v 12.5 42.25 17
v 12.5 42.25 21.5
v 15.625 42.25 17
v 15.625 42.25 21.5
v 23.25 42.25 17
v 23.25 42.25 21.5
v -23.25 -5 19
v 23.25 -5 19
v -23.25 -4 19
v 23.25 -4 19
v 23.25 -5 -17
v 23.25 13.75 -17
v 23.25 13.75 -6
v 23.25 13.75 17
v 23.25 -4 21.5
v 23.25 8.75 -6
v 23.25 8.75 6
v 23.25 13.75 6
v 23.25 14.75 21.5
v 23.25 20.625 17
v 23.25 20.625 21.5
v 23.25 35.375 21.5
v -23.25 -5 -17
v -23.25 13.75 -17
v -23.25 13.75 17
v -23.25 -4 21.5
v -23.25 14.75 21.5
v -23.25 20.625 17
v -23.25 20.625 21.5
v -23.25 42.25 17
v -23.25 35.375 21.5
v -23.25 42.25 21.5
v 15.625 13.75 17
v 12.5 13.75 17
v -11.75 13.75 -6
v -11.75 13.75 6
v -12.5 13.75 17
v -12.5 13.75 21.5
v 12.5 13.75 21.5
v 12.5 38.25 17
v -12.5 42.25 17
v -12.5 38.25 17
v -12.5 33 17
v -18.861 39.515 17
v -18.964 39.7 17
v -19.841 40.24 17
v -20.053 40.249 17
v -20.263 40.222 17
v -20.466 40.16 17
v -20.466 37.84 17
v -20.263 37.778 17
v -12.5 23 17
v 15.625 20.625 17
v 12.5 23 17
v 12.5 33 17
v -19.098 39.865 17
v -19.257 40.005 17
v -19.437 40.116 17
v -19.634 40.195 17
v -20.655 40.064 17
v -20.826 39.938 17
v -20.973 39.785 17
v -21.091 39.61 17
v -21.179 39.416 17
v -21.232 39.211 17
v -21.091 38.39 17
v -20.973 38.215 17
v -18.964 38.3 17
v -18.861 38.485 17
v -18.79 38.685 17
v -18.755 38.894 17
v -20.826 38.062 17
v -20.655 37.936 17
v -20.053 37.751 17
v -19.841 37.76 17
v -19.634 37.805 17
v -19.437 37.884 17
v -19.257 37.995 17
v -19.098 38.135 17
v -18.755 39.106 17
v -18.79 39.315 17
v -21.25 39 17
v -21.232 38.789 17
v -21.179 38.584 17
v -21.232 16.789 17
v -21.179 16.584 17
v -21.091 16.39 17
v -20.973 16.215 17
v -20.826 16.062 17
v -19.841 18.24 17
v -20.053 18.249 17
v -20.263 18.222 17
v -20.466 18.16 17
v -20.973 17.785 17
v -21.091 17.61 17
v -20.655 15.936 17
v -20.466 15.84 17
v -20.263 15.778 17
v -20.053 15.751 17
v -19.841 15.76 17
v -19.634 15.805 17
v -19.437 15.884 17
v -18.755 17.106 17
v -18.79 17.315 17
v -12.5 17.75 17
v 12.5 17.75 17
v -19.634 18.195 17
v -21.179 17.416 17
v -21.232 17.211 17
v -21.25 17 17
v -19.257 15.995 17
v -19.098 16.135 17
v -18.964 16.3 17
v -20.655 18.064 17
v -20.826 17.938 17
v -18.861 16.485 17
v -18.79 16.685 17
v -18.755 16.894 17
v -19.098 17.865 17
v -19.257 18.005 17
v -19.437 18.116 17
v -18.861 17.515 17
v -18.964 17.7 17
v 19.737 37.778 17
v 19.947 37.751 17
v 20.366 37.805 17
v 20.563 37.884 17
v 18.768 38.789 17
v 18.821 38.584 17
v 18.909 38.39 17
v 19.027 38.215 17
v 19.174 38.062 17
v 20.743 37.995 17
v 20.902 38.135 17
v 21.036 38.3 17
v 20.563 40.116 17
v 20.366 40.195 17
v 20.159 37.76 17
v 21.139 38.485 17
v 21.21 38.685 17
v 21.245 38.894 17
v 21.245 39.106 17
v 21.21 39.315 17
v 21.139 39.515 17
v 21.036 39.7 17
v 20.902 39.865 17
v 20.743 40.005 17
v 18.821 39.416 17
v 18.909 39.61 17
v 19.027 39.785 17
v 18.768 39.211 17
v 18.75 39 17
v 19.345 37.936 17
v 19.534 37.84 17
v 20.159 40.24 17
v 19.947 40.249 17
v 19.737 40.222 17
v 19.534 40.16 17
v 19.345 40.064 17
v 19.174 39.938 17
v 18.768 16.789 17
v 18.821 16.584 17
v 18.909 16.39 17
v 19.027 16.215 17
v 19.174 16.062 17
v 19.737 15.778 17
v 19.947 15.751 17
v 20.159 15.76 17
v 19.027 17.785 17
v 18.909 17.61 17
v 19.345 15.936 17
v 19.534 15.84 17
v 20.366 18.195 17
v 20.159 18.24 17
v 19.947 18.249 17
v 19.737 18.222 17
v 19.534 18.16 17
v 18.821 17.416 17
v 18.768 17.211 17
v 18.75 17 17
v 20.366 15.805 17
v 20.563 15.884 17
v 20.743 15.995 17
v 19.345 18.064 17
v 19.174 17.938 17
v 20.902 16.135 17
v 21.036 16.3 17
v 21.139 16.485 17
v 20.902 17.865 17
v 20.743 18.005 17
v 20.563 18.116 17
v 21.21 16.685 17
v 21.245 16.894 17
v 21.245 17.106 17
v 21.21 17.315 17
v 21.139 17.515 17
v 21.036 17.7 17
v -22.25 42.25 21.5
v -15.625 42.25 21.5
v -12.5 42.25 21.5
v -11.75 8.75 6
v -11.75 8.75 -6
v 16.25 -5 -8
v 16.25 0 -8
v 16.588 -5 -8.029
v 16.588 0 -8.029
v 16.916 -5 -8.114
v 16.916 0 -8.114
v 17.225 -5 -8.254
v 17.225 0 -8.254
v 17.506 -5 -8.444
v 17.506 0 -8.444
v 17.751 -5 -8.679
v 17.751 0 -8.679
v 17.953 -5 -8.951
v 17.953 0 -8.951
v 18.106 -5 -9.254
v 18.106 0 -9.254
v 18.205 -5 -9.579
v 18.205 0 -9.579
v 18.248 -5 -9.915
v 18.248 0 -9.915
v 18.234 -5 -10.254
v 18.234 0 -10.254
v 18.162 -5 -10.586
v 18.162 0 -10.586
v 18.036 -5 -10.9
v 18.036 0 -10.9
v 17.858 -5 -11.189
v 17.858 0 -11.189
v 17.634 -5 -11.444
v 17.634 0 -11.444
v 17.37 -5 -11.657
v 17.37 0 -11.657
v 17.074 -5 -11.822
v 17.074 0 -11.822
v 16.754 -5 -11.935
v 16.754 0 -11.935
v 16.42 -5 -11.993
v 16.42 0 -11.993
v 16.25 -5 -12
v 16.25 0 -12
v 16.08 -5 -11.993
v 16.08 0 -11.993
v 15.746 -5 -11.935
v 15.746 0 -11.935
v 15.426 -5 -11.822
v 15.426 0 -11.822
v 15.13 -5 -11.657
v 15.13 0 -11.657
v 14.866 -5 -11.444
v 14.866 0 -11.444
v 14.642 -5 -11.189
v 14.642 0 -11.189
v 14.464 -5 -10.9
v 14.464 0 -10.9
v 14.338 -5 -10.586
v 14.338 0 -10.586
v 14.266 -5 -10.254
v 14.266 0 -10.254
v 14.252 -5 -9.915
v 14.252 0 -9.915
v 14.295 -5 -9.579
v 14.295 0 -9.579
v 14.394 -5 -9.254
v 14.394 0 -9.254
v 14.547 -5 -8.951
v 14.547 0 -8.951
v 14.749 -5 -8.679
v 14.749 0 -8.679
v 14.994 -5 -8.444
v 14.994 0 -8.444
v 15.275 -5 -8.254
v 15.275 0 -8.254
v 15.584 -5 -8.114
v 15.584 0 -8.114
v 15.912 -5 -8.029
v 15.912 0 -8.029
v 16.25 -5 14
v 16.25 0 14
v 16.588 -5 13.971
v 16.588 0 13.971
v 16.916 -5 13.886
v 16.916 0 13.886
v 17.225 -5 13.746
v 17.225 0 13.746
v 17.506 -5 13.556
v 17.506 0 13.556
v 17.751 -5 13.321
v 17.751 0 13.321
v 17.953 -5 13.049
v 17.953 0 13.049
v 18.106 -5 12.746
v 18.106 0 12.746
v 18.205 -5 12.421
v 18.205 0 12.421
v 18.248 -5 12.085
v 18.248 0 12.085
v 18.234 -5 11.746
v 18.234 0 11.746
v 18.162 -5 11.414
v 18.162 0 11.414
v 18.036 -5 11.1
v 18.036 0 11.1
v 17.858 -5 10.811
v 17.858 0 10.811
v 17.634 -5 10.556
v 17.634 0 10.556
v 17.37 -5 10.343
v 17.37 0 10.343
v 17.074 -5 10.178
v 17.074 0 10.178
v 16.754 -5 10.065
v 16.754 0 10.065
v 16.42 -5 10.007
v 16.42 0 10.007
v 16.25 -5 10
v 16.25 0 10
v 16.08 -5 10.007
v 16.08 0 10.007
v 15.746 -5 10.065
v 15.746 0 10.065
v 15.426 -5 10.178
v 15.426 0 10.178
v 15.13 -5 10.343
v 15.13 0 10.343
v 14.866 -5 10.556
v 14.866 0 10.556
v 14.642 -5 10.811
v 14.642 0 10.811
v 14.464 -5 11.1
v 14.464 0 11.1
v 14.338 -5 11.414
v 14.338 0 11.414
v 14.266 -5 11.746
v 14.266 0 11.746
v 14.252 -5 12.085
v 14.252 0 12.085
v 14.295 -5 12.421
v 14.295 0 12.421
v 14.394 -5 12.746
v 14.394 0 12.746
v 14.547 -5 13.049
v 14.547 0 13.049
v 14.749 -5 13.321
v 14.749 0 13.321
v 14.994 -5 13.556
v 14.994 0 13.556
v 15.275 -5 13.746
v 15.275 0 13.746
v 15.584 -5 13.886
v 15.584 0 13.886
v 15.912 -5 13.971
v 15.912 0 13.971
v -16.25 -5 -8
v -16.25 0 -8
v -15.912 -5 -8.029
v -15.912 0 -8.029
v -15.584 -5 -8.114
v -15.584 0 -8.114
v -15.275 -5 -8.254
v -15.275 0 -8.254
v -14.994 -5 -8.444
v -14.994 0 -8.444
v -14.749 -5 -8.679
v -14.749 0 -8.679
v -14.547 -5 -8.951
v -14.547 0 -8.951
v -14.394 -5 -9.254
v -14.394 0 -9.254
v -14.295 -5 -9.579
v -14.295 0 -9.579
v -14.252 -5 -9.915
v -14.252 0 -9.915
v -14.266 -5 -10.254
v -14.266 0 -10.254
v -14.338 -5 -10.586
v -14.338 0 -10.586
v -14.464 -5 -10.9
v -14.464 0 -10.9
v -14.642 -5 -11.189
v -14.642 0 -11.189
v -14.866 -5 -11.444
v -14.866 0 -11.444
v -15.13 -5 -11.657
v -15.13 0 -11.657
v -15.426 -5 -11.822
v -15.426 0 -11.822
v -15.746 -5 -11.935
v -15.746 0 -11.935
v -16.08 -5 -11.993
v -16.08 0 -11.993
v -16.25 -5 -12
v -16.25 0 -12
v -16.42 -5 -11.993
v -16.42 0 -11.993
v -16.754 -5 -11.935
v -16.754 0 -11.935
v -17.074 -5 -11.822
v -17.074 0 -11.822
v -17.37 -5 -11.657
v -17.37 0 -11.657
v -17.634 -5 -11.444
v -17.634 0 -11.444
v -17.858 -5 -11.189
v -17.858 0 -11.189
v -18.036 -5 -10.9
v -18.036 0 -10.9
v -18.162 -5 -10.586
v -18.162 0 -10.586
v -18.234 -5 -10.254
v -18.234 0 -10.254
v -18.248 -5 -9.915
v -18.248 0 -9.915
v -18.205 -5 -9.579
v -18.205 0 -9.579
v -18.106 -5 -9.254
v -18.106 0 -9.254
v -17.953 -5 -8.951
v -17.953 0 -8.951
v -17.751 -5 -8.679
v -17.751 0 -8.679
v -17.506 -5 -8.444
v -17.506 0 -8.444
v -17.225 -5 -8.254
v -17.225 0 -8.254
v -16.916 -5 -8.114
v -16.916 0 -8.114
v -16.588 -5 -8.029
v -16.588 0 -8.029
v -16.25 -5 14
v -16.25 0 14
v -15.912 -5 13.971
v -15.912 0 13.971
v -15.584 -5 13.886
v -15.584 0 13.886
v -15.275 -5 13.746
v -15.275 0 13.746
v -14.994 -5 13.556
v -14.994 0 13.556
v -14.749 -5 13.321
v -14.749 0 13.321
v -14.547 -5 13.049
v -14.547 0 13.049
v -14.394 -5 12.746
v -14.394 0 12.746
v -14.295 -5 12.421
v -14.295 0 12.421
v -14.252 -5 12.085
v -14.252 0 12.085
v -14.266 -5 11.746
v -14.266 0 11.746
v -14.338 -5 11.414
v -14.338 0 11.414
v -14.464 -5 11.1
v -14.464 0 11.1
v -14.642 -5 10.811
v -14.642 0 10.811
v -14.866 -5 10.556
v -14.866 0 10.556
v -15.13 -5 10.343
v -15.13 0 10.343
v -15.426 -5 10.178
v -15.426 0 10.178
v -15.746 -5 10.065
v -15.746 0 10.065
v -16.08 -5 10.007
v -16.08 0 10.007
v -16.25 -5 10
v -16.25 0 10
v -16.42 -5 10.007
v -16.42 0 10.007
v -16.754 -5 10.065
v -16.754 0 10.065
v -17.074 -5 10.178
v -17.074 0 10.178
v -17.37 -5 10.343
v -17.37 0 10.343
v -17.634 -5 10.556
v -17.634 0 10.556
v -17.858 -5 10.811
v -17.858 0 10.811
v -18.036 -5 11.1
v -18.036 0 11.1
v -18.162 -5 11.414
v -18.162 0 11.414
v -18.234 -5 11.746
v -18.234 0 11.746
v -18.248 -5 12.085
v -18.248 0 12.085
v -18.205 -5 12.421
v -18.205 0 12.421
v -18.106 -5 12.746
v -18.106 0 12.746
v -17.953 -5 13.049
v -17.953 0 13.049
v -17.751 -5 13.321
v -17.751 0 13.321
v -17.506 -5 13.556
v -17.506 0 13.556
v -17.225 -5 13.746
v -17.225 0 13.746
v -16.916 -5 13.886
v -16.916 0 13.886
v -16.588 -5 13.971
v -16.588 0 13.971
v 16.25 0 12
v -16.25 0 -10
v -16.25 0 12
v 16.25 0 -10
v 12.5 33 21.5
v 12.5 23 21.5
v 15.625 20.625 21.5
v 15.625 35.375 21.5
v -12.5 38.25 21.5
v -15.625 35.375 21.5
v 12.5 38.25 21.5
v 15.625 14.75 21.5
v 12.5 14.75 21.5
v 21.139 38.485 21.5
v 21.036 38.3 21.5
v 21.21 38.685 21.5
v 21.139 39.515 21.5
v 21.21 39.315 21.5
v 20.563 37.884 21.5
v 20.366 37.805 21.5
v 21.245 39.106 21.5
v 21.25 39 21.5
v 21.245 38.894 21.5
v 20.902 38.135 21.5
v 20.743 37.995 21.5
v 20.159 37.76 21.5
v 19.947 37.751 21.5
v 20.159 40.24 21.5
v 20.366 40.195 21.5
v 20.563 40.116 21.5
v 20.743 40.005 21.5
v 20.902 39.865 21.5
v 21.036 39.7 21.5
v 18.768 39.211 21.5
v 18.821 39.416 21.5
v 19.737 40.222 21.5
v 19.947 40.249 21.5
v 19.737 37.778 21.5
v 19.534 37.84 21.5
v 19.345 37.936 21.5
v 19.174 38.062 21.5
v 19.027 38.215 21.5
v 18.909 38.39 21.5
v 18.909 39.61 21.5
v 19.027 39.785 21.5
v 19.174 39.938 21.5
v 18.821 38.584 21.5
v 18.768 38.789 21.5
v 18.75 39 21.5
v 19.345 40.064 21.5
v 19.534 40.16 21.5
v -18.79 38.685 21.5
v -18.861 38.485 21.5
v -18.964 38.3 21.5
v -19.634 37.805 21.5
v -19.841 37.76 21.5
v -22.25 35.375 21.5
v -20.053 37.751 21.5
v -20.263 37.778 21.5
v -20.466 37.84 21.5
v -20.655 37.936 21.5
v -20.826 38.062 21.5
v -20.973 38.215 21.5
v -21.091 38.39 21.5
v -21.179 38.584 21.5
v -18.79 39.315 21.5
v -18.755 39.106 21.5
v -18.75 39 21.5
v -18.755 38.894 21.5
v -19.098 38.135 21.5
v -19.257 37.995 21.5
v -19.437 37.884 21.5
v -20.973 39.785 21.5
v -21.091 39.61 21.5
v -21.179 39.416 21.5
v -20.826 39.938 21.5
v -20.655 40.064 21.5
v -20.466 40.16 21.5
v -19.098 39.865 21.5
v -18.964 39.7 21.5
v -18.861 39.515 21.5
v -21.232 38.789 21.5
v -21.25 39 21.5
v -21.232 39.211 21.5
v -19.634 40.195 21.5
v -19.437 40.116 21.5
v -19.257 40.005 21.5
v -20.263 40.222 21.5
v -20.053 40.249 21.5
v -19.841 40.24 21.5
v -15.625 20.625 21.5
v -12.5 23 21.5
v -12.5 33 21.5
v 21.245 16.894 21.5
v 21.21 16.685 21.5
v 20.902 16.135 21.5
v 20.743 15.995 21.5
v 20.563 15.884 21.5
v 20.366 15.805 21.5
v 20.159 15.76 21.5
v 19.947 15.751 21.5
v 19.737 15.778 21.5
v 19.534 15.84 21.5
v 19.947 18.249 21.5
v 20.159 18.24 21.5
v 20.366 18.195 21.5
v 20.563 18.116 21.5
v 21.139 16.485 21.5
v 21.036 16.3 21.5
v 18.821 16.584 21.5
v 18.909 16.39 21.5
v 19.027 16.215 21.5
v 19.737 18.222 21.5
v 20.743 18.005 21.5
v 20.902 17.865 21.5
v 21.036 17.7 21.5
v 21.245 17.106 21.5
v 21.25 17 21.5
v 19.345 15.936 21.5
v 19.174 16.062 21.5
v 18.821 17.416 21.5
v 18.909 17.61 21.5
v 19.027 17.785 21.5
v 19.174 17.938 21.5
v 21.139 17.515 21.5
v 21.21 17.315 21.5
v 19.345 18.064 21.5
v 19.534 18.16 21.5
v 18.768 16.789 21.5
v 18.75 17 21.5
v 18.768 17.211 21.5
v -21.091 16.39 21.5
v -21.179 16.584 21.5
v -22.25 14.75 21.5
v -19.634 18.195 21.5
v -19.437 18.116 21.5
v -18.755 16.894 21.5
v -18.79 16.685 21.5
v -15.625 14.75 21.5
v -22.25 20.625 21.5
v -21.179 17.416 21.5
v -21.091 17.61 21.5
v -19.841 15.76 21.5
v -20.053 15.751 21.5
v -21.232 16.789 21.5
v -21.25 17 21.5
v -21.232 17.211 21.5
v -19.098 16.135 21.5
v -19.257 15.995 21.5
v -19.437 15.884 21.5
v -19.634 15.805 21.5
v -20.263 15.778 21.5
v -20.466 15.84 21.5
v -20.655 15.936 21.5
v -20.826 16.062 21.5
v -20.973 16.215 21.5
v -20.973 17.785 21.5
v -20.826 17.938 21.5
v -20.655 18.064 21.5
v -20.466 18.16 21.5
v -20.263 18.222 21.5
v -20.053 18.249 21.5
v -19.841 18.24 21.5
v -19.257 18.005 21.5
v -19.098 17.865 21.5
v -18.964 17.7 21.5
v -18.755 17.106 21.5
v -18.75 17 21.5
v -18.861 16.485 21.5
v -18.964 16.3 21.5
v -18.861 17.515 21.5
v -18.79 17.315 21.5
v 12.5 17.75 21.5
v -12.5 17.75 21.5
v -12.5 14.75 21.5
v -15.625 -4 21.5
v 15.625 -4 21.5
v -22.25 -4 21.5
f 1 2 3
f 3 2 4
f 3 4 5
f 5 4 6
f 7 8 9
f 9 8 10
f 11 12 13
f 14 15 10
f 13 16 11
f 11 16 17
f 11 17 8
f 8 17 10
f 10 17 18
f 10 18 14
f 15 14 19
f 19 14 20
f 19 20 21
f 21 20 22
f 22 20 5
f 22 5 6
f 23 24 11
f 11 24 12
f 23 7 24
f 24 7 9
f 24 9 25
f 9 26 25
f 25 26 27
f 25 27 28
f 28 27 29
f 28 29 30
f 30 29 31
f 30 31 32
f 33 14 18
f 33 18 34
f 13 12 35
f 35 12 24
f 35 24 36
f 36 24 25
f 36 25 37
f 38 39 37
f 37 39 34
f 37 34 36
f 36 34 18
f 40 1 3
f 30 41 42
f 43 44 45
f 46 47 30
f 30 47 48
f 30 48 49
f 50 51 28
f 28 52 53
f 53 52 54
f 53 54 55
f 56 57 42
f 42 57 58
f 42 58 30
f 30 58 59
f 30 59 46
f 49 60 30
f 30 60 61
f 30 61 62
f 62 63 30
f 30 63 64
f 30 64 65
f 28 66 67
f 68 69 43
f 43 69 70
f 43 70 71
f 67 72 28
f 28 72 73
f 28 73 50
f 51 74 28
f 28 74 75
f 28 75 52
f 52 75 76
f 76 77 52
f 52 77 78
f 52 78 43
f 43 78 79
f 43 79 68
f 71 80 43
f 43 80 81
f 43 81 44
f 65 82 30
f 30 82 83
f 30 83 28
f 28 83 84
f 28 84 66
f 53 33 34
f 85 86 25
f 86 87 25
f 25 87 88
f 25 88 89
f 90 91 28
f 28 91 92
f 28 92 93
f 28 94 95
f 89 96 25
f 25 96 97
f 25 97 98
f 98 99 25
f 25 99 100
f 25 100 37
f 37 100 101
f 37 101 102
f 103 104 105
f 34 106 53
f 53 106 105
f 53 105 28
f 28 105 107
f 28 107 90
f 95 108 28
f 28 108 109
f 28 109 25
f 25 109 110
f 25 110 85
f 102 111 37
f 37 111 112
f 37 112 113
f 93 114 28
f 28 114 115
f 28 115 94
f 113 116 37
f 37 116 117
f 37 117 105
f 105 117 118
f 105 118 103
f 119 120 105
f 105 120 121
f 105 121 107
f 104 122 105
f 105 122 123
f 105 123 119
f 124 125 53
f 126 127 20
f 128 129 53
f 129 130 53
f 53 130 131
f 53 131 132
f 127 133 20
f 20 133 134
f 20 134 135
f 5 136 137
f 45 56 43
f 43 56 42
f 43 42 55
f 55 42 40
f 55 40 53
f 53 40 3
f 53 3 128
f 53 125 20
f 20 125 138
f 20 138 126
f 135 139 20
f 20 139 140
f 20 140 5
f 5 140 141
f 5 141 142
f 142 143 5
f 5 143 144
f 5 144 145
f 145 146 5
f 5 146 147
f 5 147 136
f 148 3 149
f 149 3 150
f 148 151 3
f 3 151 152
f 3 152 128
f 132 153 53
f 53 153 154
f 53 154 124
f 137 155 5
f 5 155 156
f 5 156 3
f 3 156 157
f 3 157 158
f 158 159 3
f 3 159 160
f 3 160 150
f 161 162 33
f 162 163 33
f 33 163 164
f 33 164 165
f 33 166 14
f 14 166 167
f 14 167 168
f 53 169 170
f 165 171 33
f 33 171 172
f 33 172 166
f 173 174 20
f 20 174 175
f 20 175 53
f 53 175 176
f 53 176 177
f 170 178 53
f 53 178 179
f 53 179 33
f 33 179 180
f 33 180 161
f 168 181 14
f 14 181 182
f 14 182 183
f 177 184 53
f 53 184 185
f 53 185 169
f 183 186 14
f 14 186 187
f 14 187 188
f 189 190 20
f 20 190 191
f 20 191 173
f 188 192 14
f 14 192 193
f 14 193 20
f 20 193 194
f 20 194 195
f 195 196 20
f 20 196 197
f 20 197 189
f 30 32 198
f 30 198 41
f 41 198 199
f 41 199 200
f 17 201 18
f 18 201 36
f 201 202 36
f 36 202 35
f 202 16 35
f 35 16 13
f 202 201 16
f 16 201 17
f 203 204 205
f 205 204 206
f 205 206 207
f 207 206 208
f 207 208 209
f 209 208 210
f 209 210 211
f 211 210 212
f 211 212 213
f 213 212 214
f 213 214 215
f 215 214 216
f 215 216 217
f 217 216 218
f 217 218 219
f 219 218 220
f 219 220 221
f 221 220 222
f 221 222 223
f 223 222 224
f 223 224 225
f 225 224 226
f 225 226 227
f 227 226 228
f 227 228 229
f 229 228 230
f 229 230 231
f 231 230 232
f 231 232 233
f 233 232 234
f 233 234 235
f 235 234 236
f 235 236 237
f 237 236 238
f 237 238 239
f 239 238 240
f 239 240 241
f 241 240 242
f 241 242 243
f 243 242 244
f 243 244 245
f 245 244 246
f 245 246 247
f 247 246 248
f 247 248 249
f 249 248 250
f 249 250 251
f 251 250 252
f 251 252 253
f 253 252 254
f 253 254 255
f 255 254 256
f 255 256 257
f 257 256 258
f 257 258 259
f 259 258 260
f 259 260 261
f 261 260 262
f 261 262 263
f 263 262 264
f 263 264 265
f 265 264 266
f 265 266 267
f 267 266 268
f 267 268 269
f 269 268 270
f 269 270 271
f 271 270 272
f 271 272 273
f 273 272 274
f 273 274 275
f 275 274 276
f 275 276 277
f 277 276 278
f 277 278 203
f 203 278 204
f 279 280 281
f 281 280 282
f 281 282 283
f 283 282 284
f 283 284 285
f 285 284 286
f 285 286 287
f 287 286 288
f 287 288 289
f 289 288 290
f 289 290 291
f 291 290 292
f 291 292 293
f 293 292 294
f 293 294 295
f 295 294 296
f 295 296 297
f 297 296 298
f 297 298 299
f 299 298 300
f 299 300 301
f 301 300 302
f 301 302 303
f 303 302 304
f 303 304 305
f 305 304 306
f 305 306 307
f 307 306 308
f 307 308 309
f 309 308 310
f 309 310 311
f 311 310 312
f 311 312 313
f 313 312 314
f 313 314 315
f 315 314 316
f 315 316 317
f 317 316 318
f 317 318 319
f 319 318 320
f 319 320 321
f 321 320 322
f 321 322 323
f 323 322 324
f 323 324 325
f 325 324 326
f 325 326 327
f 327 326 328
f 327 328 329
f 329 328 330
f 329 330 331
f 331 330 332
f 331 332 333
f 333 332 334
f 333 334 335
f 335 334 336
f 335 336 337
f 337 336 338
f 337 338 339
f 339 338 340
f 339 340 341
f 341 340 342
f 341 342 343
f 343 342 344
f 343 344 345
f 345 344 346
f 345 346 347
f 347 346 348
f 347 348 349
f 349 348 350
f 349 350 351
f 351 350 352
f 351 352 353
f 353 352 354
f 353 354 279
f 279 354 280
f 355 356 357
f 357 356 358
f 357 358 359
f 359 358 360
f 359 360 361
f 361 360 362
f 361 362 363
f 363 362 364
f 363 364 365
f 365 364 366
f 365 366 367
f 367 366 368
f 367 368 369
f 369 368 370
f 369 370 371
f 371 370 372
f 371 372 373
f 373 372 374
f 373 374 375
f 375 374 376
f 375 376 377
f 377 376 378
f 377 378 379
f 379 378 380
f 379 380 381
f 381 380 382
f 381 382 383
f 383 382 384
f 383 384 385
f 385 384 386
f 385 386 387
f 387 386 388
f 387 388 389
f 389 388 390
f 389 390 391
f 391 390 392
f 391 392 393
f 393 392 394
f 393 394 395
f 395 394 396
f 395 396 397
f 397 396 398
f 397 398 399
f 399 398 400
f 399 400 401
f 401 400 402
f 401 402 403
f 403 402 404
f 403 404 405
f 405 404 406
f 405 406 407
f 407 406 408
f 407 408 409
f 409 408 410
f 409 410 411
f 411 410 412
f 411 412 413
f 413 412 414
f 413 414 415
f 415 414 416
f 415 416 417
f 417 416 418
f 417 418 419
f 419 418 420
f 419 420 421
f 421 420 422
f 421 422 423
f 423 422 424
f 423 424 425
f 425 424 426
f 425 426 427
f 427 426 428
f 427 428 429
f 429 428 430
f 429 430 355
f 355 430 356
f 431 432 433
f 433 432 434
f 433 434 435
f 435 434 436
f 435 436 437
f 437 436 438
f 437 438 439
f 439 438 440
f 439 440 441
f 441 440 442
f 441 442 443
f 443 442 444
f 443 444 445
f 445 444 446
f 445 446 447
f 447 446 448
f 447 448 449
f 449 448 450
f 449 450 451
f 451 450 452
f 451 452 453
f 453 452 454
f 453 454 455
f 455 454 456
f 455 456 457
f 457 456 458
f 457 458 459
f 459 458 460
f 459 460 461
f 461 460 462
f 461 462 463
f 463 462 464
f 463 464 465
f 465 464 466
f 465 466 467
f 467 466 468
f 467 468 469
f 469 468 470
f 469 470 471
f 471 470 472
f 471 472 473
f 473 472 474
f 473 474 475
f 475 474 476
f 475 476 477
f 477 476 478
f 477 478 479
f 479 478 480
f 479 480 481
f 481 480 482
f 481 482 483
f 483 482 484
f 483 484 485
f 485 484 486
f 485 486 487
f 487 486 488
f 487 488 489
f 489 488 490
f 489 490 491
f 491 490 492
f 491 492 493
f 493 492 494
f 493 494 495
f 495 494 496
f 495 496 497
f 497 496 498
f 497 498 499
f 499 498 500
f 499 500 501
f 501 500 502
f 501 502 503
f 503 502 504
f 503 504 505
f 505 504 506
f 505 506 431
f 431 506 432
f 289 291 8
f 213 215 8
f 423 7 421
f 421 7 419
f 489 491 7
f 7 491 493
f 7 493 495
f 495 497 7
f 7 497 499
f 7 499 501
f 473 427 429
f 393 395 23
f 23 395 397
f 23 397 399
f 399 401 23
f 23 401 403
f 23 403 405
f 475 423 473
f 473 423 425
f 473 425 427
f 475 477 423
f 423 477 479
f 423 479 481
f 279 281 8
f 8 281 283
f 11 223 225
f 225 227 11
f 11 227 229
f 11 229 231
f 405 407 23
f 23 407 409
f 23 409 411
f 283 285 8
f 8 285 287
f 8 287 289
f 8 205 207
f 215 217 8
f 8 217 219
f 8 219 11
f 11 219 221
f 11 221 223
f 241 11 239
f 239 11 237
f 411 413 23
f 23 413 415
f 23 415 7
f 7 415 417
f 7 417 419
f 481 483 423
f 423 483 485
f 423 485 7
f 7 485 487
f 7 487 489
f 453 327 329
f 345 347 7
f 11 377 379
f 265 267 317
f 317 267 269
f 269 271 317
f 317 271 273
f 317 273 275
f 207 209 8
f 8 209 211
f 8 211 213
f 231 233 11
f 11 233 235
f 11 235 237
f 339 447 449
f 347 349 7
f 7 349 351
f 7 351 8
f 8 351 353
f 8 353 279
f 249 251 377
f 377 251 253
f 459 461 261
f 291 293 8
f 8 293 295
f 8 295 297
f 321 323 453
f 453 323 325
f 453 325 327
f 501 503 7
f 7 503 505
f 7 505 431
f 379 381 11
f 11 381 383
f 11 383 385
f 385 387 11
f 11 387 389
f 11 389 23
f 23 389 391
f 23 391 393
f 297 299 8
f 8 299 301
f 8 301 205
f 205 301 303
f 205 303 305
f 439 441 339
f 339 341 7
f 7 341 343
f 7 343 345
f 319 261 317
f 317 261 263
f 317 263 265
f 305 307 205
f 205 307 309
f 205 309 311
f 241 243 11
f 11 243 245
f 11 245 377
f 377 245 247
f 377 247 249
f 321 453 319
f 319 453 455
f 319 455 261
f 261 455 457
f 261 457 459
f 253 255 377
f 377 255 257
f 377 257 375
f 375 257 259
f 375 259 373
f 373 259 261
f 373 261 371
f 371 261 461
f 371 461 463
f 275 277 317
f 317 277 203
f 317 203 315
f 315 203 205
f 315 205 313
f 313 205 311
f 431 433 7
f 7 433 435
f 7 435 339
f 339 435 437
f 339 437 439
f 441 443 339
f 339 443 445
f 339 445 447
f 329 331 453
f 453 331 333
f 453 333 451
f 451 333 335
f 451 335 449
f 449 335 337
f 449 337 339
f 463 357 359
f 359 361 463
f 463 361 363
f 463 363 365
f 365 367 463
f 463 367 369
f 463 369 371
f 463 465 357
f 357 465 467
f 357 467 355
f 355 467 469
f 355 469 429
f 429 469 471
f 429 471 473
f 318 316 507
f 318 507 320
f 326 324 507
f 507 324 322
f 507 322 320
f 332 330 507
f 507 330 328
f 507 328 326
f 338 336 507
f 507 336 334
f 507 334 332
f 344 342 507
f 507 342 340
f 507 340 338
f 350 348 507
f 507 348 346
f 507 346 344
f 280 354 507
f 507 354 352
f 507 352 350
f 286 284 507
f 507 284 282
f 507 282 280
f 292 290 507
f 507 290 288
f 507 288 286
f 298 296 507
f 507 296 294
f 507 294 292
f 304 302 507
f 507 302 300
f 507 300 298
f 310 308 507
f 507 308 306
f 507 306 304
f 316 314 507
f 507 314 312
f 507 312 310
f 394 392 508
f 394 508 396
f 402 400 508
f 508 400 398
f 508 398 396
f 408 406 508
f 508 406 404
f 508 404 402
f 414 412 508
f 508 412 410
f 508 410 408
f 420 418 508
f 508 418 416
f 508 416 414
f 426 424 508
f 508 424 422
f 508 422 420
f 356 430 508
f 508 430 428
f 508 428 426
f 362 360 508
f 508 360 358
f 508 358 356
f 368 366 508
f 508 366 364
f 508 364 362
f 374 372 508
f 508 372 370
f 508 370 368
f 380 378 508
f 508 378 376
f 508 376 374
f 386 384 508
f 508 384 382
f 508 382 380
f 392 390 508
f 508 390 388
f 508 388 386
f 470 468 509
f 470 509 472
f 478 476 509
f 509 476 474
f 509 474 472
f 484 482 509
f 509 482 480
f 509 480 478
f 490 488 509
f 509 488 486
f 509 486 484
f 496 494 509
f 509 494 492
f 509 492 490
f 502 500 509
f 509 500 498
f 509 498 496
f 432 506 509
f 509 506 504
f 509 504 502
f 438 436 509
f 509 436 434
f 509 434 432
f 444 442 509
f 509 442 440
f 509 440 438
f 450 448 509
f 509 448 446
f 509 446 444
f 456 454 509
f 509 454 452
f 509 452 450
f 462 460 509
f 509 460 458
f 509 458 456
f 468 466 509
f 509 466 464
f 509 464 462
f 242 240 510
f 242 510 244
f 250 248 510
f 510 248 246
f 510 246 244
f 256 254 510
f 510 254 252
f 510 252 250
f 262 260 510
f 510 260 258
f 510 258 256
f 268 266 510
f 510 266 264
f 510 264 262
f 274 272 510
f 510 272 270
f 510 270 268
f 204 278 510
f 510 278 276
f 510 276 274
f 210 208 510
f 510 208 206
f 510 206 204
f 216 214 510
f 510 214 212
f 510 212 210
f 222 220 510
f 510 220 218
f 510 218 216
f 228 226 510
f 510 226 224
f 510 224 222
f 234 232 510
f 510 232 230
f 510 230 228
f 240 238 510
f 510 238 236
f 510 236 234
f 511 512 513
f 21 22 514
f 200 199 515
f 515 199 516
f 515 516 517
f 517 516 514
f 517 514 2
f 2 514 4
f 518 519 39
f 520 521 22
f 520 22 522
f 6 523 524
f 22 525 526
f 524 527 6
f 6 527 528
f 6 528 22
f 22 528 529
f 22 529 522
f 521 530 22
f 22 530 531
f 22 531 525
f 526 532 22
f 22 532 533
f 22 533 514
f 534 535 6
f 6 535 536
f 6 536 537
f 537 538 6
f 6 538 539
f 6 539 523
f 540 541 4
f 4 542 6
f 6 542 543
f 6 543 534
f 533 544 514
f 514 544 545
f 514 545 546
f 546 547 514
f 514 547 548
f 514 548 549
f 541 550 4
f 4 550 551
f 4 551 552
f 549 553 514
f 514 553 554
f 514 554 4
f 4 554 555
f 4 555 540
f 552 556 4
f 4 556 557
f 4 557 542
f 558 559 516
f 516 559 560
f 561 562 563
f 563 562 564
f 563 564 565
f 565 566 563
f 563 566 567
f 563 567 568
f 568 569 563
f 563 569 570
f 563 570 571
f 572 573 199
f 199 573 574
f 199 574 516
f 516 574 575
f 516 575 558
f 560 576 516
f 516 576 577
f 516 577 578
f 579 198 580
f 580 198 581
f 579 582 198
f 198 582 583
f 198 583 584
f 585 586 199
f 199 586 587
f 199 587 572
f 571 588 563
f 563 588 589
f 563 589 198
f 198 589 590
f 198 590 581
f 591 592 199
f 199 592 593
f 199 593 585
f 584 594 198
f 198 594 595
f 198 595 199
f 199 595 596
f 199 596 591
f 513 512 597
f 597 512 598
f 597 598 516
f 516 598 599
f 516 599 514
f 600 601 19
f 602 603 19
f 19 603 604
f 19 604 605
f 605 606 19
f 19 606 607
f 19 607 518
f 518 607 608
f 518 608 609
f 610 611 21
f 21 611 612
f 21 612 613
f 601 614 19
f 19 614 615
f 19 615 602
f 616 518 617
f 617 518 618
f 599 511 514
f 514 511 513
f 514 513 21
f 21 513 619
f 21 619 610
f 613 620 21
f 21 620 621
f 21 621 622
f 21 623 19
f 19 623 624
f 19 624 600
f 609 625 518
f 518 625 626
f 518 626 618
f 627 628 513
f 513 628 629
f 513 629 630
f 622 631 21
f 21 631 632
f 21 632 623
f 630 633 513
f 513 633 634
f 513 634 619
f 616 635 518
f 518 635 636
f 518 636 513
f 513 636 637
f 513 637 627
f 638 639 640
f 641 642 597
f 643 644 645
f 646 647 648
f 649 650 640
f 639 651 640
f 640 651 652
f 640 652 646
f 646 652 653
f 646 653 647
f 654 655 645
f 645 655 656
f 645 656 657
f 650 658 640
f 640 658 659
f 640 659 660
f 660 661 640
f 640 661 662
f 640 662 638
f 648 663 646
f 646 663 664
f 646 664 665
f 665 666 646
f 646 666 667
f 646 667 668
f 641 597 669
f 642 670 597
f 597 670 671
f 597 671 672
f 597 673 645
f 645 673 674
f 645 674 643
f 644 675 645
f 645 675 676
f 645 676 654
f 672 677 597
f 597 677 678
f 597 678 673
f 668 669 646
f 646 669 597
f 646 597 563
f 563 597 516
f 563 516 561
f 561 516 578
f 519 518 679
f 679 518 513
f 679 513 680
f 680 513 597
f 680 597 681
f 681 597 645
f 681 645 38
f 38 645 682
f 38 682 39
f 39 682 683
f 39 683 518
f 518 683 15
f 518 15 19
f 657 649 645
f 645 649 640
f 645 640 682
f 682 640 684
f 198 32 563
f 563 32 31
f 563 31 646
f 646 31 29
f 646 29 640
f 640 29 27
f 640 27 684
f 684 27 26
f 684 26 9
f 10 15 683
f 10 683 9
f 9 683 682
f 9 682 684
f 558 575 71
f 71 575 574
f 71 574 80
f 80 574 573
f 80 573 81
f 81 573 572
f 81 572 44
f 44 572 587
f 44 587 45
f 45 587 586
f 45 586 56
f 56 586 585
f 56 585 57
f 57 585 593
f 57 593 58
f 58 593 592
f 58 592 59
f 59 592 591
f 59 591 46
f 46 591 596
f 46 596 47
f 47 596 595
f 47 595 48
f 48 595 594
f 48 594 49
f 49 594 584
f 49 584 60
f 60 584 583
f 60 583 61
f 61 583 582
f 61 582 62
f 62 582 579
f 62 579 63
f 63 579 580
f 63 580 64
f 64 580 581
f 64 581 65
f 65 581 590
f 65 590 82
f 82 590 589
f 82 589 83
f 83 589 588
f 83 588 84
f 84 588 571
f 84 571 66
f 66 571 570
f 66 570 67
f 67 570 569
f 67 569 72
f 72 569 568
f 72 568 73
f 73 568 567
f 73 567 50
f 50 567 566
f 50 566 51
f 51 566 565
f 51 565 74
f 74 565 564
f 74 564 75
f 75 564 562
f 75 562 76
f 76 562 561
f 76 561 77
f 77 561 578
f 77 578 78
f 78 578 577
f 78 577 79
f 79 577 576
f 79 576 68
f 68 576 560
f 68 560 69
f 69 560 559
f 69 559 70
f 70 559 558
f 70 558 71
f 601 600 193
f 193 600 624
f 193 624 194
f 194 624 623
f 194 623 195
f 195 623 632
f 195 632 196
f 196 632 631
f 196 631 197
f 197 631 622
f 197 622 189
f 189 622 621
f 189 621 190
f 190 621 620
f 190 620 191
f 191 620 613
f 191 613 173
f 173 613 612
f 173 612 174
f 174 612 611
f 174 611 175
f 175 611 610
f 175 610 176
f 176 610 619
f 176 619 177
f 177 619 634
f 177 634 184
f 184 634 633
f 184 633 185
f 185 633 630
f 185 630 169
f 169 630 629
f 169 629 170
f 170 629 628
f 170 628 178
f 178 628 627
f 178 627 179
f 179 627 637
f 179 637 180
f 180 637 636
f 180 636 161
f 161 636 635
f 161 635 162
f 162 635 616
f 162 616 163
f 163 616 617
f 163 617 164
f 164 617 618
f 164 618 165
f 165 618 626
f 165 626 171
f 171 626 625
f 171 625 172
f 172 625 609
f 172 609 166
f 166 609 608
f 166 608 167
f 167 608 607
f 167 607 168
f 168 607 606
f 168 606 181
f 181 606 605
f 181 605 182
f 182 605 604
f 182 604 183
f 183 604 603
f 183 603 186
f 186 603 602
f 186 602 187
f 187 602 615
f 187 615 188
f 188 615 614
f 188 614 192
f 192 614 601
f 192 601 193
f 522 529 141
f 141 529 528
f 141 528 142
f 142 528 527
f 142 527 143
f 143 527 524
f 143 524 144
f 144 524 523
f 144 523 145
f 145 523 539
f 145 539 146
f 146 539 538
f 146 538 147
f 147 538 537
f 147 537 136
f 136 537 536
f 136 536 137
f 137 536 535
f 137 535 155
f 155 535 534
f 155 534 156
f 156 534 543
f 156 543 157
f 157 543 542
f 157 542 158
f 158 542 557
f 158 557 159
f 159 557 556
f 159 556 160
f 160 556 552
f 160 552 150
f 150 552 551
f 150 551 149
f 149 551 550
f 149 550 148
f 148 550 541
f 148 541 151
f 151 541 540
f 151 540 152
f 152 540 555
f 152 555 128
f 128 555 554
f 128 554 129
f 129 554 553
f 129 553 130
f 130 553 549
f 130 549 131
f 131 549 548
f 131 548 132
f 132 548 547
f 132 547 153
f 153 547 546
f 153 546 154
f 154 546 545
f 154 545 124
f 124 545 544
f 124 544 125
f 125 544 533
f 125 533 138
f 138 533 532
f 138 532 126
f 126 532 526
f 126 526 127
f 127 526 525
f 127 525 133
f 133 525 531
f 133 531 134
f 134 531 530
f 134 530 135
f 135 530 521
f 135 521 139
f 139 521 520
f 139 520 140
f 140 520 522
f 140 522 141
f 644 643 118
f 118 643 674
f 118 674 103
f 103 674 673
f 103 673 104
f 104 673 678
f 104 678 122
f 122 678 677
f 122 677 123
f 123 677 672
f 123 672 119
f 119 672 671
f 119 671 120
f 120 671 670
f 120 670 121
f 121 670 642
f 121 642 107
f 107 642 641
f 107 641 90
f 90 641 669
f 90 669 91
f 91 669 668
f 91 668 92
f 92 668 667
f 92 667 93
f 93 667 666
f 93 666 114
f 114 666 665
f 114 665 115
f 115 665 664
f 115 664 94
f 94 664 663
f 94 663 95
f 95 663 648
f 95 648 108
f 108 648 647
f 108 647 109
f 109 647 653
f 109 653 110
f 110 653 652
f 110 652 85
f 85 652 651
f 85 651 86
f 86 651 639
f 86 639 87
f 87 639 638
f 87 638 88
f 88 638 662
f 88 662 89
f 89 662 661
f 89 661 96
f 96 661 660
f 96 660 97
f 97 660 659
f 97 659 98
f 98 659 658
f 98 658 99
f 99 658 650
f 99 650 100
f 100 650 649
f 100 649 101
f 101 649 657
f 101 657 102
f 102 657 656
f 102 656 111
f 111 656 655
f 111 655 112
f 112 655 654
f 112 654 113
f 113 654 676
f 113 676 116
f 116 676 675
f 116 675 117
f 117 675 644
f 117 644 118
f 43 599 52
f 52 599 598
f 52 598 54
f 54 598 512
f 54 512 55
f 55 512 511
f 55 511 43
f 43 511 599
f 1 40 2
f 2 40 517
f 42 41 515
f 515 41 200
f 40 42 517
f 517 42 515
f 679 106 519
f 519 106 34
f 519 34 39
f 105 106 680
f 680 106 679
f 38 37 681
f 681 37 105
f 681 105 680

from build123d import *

# Parameters (mm, degrees)
SKETCH1_W                      = 46.5
SKETCH1_H                      = 34
BOSS_EXTRUDE1_DEPTH            = 13.75
SKETCH2_W                      = 46.5
SKETCH2_H                      = 42.25
BOSS_EXTRUDE2_DEPTH            = 2
SKETCH4_W                      = 35
SKETCH4_H                      = 12
CUT_EXTRUDE2_DEPTH             = 5
SKETCH6_W                      = 46.5
SKETCH6_H                      = 36
SKETCH6_R                      = 2
BOSS_EXTRUDE3_DEPTH            = 5
SKETCH8_W                      = 46.5
SKETCH8_H                      = 2.5
BOSS_EXTRUDE4_DEPTH            = 46.25
CUT_EXTRUDE1_REACH             = 62.18
SKETCH3_R                      = 1.25
SKETCH3_W                      = 25
SKETCH3_H                      = 10
CUT_EXTRUDE1_DIRECTION_2_DEPTH = 51
SKETCH7_W                      = 25
SKETCH7_H                      = 4
CUT_EXTRUDE3_DEPTH             = 10


with BuildPart() as part:
    # Sketch1 → Boss-Extrude1 (new body)
    with BuildSketch(Plane(origin=(0, 0, 0), x_dir=(1, 0, 0), z_dir=(0, 1, 0))):
        Rectangle(SKETCH1_W, SKETCH1_H)
    extrude(amount=BOSS_EXTRUDE1_DEPTH)

    # Sketch2 → Boss-Extrude2 (add)
    with BuildSketch(Plane.XY.offset(17)):
        with Locations((0, 21.125)):
            Rectangle(SKETCH2_W, SKETCH2_H)
    extrude(amount=BOSS_EXTRUDE2_DEPTH)

    # Sketch4 → Cut-Extrude2 (cut)
    with BuildSketch(Plane(origin=(0, 13.75, 0), x_dir=(1, 0, 0), z_dir=(0, 1, 0))):
        with Locations((5.75, 0)):
            Rectangle(SKETCH4_W, SKETCH4_H)
    extrude(amount=-CUT_EXTRUDE2_DEPTH, mode=Mode.SUBTRACT)

    # Sketch6 → Boss-Extrude3 (add)
    with BuildSketch(Plane.XZ):
        with Locations((0, 1)):
            Rectangle(SKETCH6_W, SKETCH6_H)
        with Locations(Location((16.25, -10, 0), (0, 0, 270))):
            Circle(SKETCH6_R, mode=Mode.SUBTRACT)
        with Locations(Location((-16.25, -10, 0), (0, 0, 270))):
            Circle(SKETCH6_R, mode=Mode.SUBTRACT)
        with Locations(Location((-16.25, 12, 0), (0, 0, 270))):
            Circle(SKETCH6_R, mode=Mode.SUBTRACT)
        with Locations(Location((16.25, 12, 0), (0, 0, 270))):
            Circle(SKETCH6_R, mode=Mode.SUBTRACT)
    extrude(amount=BOSS_EXTRUDE3_DEPTH)

    # Sketch8 → Boss-Extrude4 (add)
    with BuildSketch(Plane(origin=(0, -4, 0), x_dir=(-1, 0, 0), z_dir=(0, -1, 0))):
        with Locations((0, -20.25)):
            Rectangle(SKETCH8_W, SKETCH8_H)
    extrude(amount=-BOSS_EXTRUDE4_DEPTH)

    # Sketch3 → Cut-Extrude1 (cut, up to next)
    with BuildSketch(Plane.XY.offset(19), mode=Mode.PRIVATE) as cut_extrude1_sk1:
        with Locations(Location((-20, 39, 0), (0, 0, 180))):
            Circle(SKETCH3_R)
    cut_extrude1_tool1 = extrude(cut_extrude1_sk1.sketch, amount=-CUT_EXTRUDE1_REACH, mode=Mode.PRIVATE) & part.part
    # Sketch3 → Cut-Extrude1 (cut, up to next)
    with BuildSketch(Plane.XY.offset(19), mode=Mode.PRIVATE) as cut_extrude1_sk2:
        with Locations(Location((20, 39, 0), (0, 0, 180))):
            Circle(SKETCH3_R)
    cut_extrude1_tool2 = extrude(cut_extrude1_sk2.sketch, amount=-CUT_EXTRUDE1_REACH, mode=Mode.PRIVATE) & part.part
    # Sketch3 → Cut-Extrude1 (cut, up to next)
    with BuildSketch(Plane.XY.offset(19), mode=Mode.PRIVATE) as cut_extrude1_sk3:
        with Locations(Location((20, 17, 0), (0, 0, 180))):
            Circle(SKETCH3_R)
    cut_extrude1_tool3 = extrude(cut_extrude1_sk3.sketch, amount=-CUT_EXTRUDE1_REACH, mode=Mode.PRIVATE) & part.part
    # Sketch3 → Cut-Extrude1 (cut, up to next)
    with BuildSketch(Plane.XY.offset(19), mode=Mode.PRIVATE) as cut_extrude1_sk4:
        with Locations(Location((-20, 17, 0), (0, 0, 180))):
            Circle(SKETCH3_R)
    cut_extrude1_tool4 = extrude(cut_extrude1_sk4.sketch, amount=-CUT_EXTRUDE1_REACH, mode=Mode.PRIVATE) & part.part
    # Sketch3 → Cut-Extrude1 (cut, up to next)
    with BuildSketch(Plane.XY.offset(19), mode=Mode.PRIVATE) as cut_extrude1_sk5:
        with Locations((0, 28)):
            Rectangle(SKETCH3_W, SKETCH3_H)
    cut_extrude1_tool5 = extrude(cut_extrude1_sk5.sketch, amount=-CUT_EXTRUDE1_REACH, mode=Mode.PRIVATE) & part.part
    add(cut_extrude1_tool1.solids().sort_by_distance((-20, 39, 19))[0], mode=Mode.SUBTRACT)
    add(cut_extrude1_tool2.solids().sort_by_distance((20, 39, 19))[0], mode=Mode.SUBTRACT)
    add(cut_extrude1_tool3.solids().sort_by_distance((20, 17, 19))[0], mode=Mode.SUBTRACT)
    add(cut_extrude1_tool4.solids().sort_by_distance((-20, 17, 19))[0], mode=Mode.SUBTRACT)
    add(cut_extrude1_tool5.solids().sort_by_distance((0, 28, 19))[0], mode=Mode.SUBTRACT)

    # Sketch3 → Cut-Extrude1 direction 2 (cut)
    with BuildSketch(Plane.XY.offset(19)):
        with Locations(Location((-20, 39, 0), (0, 0, 180))):
            Circle(SKETCH3_R)
        with Locations(Location((20, 39, 0), (0, 0, 180))):
            Circle(SKETCH3_R)
        with Locations(Location((20, 17, 0), (0, 0, 180))):
            Circle(SKETCH3_R)
        with Locations(Location((-20, 17, 0), (0, 0, 180))):
            Circle(SKETCH3_R)
        with Locations((0, 28)):
            Rectangle(SKETCH3_W, SKETCH3_H)
    extrude(amount=CUT_EXTRUDE1_DIRECTION_2_DEPTH, mode=Mode.SUBTRACT)

    # Sketch7 → Cut-Extrude3 (cut)
    with BuildSketch(Plane(origin=(0, 0, 17), x_dir=(-1, 0, 0), z_dir=(0, 0, -1))):
        with Locations((0, 15.75)):
            Rectangle(SKETCH7_W, SKETCH7_H)
        with Locations((0, 40.25)):
            Rectangle(SKETCH7_W, SKETCH7_H)
    extrude(amount=-CUT_EXTRUDE3_DEPTH, mode=Mode.SUBTRACT)


solid = part.part
